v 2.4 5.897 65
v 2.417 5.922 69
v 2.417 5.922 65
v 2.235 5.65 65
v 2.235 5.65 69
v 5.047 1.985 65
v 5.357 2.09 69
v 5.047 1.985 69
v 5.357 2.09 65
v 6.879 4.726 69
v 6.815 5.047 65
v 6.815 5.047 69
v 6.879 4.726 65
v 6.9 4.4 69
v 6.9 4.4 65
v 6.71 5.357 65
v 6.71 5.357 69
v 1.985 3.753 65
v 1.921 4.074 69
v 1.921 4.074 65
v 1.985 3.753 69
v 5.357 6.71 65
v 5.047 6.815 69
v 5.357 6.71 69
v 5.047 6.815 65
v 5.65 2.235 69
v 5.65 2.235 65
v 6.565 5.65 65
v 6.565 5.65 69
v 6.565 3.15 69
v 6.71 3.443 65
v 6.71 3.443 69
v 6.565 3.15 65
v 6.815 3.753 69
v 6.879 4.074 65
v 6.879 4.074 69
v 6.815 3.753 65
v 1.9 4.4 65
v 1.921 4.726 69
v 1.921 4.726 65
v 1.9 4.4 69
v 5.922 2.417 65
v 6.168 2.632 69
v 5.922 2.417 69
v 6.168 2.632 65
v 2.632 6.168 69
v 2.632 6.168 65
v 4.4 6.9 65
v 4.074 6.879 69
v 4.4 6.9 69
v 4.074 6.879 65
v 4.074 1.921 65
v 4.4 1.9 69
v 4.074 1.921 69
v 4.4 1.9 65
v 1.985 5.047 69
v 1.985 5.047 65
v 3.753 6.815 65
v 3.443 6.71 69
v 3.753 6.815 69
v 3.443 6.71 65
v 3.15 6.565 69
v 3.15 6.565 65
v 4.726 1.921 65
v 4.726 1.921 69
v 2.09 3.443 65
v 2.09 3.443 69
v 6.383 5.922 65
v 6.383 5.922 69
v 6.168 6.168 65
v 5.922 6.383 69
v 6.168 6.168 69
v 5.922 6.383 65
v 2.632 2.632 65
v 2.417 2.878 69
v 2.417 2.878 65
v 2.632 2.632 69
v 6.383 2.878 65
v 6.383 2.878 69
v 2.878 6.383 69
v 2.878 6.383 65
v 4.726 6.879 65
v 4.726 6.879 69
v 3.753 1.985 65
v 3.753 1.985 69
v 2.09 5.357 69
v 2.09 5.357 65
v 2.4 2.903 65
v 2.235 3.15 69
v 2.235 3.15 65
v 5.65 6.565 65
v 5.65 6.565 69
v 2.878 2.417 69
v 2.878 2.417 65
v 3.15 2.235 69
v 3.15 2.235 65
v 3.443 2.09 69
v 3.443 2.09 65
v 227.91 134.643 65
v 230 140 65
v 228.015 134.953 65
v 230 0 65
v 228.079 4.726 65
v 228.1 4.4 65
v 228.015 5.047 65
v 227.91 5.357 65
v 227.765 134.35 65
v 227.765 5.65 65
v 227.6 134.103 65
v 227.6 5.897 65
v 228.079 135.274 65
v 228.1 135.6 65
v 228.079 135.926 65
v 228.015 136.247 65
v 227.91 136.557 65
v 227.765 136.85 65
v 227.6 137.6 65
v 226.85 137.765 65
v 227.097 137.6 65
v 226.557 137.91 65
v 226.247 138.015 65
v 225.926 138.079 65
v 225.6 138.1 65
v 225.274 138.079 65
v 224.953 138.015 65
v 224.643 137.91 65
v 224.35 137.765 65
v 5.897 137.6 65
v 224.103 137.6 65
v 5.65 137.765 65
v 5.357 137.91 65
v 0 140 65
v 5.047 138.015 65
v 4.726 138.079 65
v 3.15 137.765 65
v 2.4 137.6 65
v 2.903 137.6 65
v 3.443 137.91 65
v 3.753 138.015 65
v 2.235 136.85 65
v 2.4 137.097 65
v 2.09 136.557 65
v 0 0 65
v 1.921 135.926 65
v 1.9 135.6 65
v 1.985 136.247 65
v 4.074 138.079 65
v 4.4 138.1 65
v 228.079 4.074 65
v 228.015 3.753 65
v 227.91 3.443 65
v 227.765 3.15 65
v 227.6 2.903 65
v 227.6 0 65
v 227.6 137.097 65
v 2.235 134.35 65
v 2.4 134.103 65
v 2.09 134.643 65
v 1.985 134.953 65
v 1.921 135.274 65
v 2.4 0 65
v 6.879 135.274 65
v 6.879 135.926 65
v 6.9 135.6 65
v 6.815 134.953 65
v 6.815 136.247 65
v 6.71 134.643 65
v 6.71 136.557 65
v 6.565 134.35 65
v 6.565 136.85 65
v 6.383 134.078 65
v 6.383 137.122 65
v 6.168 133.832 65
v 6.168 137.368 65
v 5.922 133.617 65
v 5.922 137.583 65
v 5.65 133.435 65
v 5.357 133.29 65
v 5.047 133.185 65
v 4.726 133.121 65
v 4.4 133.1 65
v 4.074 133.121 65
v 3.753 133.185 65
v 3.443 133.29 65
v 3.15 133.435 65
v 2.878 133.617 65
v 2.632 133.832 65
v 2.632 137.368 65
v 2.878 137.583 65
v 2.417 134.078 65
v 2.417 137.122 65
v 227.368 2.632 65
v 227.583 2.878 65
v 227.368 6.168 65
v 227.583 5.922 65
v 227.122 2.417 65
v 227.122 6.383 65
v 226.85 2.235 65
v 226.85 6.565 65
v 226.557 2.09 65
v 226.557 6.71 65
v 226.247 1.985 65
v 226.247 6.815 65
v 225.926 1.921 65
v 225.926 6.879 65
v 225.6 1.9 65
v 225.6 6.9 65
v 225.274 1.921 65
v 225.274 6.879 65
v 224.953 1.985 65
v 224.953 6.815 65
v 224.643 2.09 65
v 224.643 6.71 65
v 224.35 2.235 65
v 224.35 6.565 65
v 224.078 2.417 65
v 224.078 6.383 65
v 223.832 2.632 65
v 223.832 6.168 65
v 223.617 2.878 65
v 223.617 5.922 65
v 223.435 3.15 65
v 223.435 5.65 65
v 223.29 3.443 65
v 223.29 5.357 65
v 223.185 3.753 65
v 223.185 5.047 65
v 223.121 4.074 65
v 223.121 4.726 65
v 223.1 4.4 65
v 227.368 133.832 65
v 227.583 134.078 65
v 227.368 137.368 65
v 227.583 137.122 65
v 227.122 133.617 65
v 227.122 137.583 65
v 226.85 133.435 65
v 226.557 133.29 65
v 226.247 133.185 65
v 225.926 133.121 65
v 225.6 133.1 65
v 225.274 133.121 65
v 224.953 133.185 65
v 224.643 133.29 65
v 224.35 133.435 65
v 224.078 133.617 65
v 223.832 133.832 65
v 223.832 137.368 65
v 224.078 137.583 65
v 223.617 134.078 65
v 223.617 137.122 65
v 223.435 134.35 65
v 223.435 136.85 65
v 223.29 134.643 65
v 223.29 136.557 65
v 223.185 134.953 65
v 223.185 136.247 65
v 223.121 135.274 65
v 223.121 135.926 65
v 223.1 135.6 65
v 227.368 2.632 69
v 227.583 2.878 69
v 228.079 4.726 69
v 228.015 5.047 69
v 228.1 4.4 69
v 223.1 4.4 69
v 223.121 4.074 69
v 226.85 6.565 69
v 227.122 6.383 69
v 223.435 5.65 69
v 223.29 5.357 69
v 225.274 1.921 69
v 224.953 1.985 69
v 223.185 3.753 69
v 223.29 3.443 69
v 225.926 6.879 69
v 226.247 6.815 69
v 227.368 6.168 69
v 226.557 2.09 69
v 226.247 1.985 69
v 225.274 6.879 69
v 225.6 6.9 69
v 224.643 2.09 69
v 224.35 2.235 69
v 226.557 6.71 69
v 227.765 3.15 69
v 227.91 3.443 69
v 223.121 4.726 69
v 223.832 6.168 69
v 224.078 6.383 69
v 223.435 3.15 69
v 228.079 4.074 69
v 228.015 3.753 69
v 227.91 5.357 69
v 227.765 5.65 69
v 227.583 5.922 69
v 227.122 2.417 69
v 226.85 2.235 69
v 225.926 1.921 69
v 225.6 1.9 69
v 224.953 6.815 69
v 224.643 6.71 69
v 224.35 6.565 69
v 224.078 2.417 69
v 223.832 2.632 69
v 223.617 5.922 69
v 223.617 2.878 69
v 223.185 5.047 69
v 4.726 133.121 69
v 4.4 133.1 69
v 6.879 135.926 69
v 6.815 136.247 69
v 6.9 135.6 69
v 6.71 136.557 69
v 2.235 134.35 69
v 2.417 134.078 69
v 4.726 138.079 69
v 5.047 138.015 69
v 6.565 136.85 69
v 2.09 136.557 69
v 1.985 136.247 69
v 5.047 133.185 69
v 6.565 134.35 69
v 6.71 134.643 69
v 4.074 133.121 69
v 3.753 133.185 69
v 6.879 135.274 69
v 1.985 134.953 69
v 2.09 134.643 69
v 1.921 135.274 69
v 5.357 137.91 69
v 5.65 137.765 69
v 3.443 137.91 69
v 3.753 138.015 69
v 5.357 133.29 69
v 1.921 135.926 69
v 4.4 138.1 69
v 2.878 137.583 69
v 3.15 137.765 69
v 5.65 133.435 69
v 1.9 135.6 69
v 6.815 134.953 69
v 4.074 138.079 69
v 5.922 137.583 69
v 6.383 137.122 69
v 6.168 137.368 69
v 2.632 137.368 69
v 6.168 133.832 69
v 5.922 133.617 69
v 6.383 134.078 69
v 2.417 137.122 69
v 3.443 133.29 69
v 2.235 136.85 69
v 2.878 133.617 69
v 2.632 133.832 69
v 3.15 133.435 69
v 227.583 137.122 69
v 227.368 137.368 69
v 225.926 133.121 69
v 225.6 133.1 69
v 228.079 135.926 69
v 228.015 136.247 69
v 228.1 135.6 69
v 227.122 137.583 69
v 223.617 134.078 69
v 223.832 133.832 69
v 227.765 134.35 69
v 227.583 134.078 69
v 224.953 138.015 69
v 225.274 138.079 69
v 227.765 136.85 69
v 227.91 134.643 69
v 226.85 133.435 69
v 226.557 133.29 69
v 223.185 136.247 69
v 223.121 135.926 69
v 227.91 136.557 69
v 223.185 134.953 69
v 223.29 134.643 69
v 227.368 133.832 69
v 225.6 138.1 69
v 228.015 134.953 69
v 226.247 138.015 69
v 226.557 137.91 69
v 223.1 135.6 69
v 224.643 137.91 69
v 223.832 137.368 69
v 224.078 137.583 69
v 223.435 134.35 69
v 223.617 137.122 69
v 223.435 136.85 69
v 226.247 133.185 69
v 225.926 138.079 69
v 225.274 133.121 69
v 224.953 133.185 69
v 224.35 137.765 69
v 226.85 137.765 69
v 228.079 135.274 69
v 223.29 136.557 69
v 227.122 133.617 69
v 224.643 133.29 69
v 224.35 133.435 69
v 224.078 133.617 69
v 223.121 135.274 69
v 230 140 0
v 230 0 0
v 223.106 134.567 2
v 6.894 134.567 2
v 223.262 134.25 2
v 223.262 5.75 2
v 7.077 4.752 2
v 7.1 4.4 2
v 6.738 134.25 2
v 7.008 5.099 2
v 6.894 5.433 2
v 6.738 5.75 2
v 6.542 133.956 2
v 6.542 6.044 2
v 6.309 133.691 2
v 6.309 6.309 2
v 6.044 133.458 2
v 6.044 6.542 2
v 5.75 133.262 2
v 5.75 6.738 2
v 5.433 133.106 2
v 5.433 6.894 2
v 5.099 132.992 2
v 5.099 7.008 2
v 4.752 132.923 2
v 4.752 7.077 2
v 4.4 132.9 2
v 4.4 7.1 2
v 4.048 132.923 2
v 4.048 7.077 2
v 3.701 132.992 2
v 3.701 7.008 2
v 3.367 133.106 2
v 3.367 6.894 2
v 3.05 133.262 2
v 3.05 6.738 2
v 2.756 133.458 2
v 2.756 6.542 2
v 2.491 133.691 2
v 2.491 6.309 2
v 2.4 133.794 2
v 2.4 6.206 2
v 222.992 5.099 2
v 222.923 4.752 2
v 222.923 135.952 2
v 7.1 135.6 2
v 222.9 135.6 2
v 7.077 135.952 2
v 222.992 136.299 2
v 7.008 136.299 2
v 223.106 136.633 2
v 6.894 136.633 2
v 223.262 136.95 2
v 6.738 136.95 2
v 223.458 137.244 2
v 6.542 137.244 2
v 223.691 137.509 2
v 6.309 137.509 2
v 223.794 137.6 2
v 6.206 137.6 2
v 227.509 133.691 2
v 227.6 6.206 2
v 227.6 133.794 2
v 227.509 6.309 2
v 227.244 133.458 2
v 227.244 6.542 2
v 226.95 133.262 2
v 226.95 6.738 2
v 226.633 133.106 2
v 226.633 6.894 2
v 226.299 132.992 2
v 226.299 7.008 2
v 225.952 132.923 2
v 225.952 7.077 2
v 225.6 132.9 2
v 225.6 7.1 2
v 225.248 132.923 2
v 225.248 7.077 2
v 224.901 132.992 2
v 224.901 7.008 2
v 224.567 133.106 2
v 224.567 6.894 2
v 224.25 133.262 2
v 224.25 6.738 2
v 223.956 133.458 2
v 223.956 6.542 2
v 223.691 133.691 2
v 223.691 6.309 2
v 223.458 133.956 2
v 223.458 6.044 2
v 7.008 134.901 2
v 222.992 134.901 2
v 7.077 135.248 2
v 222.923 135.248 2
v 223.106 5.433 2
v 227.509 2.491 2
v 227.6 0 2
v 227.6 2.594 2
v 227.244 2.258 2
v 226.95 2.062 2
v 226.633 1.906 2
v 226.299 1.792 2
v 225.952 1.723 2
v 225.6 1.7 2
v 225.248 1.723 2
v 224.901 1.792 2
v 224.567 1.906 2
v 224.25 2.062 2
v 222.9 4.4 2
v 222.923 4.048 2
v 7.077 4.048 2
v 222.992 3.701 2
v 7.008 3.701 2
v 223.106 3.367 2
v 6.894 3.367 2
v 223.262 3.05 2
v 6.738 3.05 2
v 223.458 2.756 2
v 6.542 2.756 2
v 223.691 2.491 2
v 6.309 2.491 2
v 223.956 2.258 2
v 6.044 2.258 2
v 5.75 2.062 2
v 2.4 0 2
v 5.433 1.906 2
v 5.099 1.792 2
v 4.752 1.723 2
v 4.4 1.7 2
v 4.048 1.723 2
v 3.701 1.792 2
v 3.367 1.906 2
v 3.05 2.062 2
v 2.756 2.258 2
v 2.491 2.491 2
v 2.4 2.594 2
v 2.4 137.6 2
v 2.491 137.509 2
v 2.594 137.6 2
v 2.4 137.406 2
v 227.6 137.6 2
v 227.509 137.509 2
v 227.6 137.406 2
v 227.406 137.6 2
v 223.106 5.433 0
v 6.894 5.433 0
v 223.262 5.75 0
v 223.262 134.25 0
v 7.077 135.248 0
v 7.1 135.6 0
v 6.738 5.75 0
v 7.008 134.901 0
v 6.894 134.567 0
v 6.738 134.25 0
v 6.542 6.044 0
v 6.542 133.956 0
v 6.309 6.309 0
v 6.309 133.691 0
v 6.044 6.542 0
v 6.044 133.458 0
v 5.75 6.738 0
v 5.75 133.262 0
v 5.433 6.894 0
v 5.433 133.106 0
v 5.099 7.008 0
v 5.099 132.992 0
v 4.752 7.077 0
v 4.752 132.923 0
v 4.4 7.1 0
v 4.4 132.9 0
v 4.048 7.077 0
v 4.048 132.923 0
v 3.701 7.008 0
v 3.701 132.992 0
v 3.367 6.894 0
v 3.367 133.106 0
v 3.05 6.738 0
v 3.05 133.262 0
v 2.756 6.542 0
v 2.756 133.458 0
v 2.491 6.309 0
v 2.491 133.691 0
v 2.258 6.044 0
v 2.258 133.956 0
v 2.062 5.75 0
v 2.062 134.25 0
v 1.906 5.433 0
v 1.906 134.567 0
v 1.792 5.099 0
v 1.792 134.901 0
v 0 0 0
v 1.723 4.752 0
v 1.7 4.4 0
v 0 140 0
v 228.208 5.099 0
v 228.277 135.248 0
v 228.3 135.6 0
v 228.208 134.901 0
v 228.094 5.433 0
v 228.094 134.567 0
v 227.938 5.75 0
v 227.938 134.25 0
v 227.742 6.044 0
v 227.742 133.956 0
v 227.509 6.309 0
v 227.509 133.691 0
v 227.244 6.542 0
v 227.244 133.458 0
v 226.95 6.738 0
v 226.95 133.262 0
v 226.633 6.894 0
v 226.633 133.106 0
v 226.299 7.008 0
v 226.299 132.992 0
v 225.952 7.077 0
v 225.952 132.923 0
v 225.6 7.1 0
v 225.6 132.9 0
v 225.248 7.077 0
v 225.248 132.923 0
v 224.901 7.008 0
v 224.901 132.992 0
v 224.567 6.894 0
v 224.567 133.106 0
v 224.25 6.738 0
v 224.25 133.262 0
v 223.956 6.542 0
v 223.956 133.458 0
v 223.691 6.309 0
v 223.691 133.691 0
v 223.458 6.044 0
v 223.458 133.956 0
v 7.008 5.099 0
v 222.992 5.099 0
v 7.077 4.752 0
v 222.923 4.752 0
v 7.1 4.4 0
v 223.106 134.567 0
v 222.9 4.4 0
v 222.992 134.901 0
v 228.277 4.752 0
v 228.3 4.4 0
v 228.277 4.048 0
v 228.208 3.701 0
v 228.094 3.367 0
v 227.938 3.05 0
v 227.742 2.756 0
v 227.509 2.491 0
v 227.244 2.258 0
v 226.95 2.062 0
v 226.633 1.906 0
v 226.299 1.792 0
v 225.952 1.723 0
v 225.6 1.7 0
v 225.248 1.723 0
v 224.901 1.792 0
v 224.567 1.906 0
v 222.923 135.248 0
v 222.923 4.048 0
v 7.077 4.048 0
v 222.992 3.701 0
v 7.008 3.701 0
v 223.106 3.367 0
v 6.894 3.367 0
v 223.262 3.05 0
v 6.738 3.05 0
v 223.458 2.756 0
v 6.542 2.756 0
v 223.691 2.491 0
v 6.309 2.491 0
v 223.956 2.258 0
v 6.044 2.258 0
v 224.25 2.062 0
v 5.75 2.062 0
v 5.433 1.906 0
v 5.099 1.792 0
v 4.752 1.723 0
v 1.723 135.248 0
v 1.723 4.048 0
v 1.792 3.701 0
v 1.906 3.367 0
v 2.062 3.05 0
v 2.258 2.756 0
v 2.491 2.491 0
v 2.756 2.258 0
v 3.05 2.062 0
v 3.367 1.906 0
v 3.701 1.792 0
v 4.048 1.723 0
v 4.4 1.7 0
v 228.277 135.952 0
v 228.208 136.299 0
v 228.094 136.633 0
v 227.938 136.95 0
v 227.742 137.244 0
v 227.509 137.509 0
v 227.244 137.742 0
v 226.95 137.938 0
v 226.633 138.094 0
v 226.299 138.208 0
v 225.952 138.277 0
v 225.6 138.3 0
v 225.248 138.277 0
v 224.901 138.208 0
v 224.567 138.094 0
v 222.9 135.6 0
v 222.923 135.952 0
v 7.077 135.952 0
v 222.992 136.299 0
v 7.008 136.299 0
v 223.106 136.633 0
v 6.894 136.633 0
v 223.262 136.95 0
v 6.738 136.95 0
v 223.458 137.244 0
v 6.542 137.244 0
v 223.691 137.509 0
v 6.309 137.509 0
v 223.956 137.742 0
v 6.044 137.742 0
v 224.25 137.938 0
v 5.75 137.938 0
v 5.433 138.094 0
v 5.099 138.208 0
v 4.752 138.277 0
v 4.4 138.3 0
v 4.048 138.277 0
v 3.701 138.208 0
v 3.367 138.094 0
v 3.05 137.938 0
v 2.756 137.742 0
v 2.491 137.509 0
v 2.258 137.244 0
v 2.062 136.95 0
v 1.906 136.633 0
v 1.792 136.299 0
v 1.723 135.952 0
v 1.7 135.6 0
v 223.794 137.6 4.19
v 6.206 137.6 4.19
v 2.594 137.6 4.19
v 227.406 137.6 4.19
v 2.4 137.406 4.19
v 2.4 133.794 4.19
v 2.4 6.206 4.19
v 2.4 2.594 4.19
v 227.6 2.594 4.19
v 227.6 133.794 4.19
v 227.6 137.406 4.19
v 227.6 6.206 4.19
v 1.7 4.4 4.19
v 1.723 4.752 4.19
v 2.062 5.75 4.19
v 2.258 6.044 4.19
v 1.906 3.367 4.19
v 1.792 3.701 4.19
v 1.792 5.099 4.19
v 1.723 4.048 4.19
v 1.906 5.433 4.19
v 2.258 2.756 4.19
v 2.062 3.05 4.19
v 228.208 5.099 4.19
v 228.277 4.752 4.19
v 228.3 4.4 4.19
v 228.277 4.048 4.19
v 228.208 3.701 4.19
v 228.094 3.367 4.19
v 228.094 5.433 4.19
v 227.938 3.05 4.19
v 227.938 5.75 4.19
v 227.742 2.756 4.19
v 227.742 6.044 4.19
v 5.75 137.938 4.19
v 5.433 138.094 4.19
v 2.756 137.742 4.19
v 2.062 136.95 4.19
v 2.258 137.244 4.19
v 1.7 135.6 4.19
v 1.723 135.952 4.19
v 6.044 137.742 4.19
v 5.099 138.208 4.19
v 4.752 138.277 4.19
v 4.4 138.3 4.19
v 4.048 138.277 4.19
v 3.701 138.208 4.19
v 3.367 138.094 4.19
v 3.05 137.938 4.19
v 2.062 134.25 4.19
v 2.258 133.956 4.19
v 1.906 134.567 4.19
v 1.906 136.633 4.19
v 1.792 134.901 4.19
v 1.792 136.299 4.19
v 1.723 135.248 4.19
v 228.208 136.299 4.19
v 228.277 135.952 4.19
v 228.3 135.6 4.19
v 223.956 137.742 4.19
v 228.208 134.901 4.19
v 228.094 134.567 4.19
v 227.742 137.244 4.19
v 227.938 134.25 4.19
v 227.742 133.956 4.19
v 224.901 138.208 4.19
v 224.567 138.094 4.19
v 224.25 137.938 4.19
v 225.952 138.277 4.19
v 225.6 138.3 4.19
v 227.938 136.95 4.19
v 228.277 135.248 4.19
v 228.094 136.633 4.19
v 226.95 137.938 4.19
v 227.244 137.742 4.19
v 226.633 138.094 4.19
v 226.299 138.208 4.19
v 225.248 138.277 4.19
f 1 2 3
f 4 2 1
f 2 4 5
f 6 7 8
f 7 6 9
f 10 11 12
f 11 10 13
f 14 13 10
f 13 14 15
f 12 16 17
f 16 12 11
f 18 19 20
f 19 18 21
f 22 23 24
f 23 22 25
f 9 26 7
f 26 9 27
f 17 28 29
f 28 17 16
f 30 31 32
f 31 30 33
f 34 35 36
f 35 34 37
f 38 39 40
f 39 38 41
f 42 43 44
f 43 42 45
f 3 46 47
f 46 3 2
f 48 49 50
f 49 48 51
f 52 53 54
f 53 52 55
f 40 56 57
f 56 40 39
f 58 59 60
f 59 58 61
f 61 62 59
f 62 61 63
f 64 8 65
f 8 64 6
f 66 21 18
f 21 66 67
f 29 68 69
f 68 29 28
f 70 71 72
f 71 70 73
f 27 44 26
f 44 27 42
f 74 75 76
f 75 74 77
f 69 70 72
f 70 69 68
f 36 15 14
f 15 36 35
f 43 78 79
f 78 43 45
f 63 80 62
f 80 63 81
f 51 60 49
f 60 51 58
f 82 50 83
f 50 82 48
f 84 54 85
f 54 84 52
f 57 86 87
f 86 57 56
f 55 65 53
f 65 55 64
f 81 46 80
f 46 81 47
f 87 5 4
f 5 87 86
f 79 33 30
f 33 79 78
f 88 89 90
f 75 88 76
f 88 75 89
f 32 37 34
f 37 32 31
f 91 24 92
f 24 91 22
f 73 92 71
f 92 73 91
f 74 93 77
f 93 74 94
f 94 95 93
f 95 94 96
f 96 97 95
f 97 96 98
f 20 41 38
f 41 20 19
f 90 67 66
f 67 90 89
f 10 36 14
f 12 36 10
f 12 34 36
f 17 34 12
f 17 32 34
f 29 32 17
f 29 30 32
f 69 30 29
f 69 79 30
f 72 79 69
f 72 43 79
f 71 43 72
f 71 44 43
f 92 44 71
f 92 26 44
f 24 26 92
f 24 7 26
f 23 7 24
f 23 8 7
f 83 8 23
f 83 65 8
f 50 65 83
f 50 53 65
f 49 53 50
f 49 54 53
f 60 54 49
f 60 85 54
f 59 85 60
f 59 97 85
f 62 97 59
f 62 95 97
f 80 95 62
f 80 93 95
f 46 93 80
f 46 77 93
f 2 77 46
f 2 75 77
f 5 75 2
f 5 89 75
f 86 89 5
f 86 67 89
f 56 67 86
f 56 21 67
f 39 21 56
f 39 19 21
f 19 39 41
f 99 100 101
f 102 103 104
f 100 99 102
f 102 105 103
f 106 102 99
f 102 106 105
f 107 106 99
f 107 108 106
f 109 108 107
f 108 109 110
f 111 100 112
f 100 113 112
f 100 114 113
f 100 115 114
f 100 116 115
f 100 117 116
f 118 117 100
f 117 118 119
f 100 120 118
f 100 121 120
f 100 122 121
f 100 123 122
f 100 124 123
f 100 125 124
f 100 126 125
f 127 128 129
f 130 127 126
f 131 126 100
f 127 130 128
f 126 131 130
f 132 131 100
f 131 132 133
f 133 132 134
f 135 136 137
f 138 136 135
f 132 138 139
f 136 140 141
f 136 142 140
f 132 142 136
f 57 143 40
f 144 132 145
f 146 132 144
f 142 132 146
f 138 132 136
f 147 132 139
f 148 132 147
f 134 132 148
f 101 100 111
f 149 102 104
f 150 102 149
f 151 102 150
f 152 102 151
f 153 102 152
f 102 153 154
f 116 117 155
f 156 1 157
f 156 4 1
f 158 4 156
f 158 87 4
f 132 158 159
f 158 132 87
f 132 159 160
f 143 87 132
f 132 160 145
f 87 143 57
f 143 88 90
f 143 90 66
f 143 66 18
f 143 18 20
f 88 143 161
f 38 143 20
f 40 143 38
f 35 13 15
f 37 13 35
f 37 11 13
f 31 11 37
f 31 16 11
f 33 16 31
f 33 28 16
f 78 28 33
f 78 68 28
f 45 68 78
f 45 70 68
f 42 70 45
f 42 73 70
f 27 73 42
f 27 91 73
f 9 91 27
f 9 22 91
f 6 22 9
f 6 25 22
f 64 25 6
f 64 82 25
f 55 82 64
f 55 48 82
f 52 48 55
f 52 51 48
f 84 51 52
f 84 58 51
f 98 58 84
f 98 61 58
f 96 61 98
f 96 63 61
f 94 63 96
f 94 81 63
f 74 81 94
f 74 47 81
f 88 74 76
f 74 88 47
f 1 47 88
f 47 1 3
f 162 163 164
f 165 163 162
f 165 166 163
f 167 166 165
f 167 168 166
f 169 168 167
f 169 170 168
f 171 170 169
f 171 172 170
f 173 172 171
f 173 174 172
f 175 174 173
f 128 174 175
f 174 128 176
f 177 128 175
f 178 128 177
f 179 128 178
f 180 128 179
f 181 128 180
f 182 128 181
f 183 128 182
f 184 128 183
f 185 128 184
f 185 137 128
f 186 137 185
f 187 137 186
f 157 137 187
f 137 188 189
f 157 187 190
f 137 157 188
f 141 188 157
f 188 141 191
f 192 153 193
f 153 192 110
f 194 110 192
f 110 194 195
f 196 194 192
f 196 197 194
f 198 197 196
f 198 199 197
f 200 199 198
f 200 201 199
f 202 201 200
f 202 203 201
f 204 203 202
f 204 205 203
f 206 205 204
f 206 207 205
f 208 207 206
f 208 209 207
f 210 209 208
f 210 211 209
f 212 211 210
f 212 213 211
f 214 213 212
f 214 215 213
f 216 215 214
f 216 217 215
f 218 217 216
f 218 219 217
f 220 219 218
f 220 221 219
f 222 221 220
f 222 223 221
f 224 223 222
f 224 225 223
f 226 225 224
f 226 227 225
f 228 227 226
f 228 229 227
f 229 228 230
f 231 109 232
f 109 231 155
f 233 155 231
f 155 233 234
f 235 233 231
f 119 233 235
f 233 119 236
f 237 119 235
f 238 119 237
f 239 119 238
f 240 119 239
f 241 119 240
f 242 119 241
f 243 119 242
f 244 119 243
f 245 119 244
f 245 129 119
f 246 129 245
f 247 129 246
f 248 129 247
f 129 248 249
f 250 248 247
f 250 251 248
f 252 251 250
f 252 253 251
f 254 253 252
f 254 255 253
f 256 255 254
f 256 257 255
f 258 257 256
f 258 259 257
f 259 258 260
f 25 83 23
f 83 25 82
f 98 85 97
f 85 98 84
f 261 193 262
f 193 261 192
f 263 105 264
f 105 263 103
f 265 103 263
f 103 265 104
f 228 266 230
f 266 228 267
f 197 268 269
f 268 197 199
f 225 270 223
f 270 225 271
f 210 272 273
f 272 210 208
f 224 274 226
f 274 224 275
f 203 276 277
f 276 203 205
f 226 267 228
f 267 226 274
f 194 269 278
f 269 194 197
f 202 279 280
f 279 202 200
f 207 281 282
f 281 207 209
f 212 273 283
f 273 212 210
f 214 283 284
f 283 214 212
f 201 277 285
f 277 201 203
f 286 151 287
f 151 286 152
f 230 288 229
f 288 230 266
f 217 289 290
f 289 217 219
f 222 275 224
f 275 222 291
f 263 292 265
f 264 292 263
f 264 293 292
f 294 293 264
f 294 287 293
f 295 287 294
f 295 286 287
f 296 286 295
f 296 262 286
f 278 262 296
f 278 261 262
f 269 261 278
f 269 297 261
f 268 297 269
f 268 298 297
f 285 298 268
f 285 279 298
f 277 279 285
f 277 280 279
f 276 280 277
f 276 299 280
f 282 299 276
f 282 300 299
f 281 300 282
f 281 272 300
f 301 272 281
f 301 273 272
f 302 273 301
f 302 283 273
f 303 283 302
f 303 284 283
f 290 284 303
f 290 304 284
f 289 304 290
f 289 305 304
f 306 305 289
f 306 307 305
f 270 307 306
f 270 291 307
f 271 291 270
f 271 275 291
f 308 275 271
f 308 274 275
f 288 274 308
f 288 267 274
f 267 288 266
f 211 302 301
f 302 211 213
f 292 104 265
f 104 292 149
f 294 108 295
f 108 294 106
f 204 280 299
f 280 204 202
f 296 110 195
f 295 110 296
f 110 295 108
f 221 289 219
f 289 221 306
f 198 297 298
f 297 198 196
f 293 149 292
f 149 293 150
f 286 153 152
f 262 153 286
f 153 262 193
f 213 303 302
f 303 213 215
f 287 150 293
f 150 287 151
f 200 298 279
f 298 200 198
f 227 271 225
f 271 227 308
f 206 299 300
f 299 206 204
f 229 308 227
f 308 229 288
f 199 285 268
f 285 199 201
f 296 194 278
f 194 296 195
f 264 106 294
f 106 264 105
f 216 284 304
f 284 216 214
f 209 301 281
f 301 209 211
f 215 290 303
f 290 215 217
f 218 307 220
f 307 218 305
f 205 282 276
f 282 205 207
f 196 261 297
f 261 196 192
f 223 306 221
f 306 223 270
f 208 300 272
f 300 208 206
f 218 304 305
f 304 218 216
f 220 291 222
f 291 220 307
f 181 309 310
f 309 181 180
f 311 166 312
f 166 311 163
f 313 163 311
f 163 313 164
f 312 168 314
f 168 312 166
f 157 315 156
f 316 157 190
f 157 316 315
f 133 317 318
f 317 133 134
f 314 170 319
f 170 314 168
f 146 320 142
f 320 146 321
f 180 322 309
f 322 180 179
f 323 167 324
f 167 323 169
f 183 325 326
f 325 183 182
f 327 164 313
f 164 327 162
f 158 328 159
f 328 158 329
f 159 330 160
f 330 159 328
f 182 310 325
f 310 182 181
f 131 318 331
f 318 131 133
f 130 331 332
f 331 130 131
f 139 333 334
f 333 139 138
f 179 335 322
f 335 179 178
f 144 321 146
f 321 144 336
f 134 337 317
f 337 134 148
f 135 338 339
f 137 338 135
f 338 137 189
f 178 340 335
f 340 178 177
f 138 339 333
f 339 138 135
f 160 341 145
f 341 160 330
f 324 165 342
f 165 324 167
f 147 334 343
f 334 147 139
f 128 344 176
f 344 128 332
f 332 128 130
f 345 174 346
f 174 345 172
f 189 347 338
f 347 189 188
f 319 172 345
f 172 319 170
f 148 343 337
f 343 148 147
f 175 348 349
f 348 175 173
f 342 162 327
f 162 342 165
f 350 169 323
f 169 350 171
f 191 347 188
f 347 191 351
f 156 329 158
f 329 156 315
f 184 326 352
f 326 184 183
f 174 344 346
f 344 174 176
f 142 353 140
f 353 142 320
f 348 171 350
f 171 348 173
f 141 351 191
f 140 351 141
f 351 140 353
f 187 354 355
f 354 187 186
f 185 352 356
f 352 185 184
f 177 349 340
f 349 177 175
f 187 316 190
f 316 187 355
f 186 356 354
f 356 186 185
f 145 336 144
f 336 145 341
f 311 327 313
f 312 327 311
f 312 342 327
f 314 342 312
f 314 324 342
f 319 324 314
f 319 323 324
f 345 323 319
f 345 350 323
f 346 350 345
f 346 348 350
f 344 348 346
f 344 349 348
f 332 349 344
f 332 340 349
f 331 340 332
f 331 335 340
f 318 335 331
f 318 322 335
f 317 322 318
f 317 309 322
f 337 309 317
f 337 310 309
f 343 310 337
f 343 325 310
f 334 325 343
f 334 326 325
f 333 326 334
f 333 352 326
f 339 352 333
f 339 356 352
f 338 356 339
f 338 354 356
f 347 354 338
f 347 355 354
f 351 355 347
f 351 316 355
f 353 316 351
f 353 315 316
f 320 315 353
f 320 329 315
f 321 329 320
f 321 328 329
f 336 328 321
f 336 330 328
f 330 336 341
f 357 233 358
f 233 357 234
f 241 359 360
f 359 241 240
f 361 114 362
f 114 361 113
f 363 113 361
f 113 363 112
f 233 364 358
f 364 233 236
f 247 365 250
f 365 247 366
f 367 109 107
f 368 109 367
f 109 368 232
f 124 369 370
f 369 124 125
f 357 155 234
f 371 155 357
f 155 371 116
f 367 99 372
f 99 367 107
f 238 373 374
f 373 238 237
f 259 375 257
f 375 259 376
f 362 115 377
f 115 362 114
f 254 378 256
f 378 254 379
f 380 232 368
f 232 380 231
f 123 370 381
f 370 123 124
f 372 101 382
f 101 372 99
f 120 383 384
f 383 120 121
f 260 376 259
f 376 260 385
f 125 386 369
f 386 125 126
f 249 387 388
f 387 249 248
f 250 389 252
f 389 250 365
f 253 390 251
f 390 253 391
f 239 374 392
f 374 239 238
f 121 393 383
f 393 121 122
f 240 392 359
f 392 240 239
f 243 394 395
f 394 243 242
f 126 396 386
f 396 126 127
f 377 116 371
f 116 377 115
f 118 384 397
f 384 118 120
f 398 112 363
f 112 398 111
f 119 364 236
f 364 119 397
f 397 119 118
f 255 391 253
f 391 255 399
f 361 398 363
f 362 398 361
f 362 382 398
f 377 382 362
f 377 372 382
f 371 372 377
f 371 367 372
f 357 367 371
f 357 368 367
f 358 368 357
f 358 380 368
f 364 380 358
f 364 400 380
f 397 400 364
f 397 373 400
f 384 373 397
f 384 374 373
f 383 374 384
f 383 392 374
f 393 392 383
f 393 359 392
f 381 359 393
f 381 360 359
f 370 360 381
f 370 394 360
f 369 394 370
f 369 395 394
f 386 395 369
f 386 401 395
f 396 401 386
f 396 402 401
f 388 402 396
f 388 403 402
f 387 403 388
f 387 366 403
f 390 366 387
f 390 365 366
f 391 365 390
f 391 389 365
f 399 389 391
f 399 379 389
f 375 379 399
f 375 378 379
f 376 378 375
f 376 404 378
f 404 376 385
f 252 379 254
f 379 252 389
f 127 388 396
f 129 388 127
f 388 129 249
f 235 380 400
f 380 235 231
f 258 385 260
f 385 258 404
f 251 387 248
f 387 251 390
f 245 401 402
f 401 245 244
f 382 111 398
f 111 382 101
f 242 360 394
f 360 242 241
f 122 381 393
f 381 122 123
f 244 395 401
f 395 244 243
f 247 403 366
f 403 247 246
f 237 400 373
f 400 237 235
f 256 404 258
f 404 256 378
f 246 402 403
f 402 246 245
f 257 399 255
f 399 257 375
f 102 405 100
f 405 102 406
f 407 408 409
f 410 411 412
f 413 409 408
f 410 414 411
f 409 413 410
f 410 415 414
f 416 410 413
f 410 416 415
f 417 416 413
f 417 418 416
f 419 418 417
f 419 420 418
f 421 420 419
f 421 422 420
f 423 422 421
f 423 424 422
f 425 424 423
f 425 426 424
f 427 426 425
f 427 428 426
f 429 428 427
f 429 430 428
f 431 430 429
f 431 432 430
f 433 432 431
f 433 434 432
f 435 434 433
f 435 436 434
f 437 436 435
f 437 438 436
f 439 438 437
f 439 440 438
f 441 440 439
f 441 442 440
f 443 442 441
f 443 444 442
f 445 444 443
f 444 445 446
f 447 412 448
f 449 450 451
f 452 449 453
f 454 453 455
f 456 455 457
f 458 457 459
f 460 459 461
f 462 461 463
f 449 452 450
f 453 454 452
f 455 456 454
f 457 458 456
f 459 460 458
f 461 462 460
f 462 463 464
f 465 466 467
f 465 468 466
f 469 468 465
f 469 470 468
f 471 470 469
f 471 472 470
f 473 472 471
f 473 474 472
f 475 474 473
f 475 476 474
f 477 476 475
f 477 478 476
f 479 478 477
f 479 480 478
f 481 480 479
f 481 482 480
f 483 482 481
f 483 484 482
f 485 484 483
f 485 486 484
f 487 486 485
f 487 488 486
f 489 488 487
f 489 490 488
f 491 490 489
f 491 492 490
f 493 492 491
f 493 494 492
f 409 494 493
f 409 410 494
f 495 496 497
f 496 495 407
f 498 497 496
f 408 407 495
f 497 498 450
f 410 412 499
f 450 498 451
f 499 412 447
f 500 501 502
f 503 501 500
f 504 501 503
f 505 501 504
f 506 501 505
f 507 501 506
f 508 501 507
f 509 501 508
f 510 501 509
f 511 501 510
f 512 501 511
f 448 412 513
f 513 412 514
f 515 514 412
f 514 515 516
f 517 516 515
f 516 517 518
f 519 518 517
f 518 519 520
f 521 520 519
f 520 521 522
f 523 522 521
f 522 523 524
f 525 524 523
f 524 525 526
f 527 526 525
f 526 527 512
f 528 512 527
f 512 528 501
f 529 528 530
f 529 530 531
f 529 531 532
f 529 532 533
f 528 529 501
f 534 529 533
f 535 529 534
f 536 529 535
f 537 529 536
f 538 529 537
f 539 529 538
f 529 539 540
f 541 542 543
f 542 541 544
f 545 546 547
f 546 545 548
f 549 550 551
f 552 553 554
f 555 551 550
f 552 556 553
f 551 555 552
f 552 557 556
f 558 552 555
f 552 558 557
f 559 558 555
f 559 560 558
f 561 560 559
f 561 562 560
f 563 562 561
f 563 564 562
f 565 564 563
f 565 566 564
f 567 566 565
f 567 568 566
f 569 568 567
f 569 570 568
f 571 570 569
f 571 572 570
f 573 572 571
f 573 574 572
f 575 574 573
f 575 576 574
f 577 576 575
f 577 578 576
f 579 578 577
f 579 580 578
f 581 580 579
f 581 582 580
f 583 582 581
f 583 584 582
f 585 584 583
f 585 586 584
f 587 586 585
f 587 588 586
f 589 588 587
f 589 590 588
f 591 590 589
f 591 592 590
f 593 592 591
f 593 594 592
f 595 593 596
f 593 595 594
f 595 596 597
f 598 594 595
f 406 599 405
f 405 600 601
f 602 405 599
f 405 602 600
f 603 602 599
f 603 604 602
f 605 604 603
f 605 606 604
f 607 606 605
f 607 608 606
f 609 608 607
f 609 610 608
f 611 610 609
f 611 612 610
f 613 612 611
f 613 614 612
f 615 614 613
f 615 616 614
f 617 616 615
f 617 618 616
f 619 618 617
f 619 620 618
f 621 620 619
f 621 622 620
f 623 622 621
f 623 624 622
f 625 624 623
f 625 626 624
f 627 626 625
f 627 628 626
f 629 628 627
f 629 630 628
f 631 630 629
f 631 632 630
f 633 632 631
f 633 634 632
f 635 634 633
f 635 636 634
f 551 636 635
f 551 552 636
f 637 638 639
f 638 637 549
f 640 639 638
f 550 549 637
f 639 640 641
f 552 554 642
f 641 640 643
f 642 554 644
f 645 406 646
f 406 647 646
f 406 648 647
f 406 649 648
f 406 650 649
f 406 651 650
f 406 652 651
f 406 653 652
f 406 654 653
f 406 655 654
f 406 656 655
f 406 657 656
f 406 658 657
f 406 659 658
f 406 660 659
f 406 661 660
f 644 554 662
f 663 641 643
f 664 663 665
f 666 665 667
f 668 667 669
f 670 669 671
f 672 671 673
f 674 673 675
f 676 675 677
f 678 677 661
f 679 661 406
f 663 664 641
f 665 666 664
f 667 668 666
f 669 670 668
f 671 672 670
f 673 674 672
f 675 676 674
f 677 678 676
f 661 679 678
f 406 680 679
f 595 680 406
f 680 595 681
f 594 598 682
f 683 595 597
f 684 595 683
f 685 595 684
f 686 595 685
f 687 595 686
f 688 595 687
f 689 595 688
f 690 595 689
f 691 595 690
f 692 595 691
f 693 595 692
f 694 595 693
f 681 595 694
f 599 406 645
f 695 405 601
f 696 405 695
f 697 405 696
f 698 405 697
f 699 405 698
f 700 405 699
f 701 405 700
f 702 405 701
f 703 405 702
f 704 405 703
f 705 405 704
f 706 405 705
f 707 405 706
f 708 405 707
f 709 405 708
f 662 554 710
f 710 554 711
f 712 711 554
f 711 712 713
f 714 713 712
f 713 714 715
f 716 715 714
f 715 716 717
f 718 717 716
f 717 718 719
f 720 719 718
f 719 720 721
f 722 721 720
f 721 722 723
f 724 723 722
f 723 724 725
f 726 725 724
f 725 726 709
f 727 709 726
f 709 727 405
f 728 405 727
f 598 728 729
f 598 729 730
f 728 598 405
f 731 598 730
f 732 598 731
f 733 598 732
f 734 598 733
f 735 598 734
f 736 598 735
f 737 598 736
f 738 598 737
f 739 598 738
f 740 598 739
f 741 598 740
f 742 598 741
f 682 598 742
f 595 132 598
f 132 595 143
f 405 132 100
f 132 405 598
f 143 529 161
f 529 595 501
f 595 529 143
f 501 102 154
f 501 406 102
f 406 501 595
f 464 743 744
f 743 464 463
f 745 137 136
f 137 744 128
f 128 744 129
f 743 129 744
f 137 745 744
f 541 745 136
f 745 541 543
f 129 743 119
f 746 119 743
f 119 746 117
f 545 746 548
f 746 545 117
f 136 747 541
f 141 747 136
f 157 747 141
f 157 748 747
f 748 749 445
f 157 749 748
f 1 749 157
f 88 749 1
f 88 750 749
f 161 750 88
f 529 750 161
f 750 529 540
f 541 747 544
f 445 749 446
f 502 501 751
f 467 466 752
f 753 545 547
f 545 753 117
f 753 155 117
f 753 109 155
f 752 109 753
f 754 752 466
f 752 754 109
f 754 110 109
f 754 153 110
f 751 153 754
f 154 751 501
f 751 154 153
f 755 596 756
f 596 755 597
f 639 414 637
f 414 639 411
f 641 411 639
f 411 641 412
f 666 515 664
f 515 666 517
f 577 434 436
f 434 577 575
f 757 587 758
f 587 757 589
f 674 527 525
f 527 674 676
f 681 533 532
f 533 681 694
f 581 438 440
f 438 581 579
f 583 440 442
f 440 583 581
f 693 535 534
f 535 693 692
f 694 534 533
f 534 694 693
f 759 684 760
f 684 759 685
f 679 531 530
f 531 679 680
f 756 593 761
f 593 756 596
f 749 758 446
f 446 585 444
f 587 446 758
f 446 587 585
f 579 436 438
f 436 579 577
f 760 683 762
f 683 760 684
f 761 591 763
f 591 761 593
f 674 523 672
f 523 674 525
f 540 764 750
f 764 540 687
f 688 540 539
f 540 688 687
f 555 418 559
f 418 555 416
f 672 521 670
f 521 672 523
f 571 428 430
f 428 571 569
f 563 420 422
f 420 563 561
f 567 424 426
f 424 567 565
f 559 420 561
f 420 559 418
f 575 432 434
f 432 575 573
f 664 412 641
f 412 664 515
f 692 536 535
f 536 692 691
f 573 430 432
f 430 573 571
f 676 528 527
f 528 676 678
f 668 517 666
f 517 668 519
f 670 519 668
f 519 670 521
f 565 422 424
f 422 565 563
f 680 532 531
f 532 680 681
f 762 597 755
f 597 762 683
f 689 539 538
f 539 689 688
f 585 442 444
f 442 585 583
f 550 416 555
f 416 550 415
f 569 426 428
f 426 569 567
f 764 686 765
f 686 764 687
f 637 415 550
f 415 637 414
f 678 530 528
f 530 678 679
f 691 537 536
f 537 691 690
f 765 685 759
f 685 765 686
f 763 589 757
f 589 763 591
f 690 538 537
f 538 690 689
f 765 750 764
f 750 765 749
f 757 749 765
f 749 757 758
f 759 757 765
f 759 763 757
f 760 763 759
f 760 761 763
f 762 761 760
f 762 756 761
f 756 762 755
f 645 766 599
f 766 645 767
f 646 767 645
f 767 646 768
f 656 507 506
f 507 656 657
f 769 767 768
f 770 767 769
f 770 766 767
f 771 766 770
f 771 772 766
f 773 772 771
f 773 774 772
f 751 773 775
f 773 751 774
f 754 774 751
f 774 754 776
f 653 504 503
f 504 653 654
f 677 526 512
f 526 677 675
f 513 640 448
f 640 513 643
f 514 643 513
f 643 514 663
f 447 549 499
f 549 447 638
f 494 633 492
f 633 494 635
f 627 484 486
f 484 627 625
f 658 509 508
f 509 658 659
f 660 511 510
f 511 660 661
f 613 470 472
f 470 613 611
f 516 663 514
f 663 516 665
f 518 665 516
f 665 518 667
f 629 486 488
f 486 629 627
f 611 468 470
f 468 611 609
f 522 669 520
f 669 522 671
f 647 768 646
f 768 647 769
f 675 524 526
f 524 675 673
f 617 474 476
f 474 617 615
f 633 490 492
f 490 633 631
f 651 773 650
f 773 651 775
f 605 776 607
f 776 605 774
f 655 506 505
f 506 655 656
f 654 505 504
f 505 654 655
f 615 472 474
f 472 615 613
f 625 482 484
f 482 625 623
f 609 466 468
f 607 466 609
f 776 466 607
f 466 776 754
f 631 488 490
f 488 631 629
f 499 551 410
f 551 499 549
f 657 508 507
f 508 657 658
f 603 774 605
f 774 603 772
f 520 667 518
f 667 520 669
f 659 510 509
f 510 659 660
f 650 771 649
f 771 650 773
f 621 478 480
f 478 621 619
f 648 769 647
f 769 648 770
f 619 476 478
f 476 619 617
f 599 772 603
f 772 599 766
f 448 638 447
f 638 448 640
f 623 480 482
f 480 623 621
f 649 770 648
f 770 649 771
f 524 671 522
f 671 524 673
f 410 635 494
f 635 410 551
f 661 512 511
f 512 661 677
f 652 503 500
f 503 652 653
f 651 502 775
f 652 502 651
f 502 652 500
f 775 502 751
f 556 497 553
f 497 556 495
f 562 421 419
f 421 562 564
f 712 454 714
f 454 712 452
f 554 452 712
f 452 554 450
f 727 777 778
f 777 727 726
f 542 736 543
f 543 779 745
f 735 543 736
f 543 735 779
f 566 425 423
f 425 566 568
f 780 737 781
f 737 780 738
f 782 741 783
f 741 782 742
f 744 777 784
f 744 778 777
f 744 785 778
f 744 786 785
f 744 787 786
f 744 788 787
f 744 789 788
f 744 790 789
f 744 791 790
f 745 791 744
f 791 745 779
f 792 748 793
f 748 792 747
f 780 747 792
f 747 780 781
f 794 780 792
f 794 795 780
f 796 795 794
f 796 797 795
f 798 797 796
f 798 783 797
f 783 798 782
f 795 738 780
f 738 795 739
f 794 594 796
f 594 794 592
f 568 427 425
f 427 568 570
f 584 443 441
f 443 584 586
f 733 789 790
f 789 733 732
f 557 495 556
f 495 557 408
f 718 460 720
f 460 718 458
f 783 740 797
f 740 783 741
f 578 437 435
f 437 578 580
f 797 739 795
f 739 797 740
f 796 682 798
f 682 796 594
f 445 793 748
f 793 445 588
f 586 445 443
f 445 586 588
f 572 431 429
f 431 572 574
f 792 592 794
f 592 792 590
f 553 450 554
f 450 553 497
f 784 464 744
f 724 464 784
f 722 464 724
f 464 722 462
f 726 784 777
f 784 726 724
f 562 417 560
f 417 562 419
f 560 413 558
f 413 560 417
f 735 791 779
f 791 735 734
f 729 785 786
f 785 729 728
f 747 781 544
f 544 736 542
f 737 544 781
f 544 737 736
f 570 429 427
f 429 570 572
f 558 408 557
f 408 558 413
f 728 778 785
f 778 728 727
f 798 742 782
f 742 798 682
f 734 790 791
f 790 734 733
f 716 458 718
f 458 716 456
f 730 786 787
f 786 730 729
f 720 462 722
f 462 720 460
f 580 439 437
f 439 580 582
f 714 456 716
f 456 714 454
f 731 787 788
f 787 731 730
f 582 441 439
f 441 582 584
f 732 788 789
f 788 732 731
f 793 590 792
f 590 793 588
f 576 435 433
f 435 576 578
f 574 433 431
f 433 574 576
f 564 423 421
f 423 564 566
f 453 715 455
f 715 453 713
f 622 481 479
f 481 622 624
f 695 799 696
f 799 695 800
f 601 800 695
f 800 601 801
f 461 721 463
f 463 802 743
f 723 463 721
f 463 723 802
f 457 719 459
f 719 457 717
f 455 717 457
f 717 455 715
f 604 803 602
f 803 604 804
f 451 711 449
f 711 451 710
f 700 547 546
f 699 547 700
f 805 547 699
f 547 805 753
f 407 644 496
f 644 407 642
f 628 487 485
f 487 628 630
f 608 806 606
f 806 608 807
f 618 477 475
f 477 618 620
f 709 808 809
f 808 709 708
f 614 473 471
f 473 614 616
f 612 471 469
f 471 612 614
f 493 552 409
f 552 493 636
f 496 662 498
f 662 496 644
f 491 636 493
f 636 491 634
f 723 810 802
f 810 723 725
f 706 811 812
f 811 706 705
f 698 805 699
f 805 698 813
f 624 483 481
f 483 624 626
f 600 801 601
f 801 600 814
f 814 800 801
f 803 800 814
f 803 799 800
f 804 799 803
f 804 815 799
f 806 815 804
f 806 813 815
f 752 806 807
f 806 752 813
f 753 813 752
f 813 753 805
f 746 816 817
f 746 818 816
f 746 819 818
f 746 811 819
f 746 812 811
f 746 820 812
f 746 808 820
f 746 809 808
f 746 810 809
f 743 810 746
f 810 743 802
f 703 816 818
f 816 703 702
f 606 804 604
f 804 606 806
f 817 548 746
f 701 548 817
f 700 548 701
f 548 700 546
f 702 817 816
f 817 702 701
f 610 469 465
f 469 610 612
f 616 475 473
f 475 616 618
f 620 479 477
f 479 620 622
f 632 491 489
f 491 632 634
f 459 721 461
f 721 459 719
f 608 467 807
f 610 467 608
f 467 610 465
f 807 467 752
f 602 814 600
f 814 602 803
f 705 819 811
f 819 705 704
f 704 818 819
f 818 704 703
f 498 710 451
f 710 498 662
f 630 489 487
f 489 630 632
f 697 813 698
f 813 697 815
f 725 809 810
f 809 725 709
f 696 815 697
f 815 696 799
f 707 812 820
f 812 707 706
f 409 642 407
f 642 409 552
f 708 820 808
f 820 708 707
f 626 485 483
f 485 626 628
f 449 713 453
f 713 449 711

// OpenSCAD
// Print Shelving — Stackable Tier
//
// One modular shelf tier: three walls (back + two sides), a floor,
// open front for access, open top. Print as many as you need and
// stack them via the corner pegs.
//
// Footprint: 230 x 140 x 65 mm (fits comfortably on the A1).
// Print time: ~2 hours per tier at 0.24 mm draft.
//
// Designed to hold the other projects in this repo:
//   - Blob Buddies (3x on one tier)
//   - Electronics bins (up to 5x 40mm bins per tier)
//   - Kirby figurines
//   - Waste Eater (on its own tier)
//
// For the 152 mm measuring cylinder, stack two tiers and lay it on
// its side, or print the TALL variant (see shelf-tier-tall.scad).

$fn = 48;

W        = 230;   // width (X)
D        = 140;   // depth (Y)
H        = 65;    // height (Z) — interior is H - FLOOR
WALL     = 2.4;
FLOOR    = 2.0;
PEG_D    = 5.0;   // stacking peg diameter
PEG_H    = 4.0;   // peg height above tier
HOLE_D   = 5.4;   // peg-hole diameter (0.4 mm fit tolerance)
HOLE_H   = 4.2;
CORNER_INSET = WALL + 2;  // where the pegs sit relative to the outer edge

// Four stacking peg positions (relative to outer origin)
PEG_POSITIONS = [
    [CORNER_INSET,         CORNER_INSET],
    [W - CORNER_INSET,     CORNER_INSET],
    [CORNER_INSET,         D - CORNER_INSET],
    [W - CORNER_INSET,     D - CORNER_INSET],
];

module tier_body() {
    union() {
        // Floor
        cube([W, D, FLOOR]);
        // Back wall (Y = D-WALL)
        translate([0, D - WALL, 0])
            cube([W, WALL, H]);
        // Left wall
        cube([WALL, D, H]);
        // Right wall
        translate([W - WALL, 0, 0])
            cube([WALL, D, H]);
        // Stacking pegs on top
        for (p = PEG_POSITIONS)
            translate([p[0], p[1], H])
                cylinder(h = PEG_H, d = PEG_D);
    }
}

difference() {
    tier_body();
    // Stacking holes in the floor (match pegs of the tier below)
    for (p = PEG_POSITIONS)
        translate([p[0], p[1], -0.01])
            cylinder(h = HOLE_H, d = HOLE_D);
}
